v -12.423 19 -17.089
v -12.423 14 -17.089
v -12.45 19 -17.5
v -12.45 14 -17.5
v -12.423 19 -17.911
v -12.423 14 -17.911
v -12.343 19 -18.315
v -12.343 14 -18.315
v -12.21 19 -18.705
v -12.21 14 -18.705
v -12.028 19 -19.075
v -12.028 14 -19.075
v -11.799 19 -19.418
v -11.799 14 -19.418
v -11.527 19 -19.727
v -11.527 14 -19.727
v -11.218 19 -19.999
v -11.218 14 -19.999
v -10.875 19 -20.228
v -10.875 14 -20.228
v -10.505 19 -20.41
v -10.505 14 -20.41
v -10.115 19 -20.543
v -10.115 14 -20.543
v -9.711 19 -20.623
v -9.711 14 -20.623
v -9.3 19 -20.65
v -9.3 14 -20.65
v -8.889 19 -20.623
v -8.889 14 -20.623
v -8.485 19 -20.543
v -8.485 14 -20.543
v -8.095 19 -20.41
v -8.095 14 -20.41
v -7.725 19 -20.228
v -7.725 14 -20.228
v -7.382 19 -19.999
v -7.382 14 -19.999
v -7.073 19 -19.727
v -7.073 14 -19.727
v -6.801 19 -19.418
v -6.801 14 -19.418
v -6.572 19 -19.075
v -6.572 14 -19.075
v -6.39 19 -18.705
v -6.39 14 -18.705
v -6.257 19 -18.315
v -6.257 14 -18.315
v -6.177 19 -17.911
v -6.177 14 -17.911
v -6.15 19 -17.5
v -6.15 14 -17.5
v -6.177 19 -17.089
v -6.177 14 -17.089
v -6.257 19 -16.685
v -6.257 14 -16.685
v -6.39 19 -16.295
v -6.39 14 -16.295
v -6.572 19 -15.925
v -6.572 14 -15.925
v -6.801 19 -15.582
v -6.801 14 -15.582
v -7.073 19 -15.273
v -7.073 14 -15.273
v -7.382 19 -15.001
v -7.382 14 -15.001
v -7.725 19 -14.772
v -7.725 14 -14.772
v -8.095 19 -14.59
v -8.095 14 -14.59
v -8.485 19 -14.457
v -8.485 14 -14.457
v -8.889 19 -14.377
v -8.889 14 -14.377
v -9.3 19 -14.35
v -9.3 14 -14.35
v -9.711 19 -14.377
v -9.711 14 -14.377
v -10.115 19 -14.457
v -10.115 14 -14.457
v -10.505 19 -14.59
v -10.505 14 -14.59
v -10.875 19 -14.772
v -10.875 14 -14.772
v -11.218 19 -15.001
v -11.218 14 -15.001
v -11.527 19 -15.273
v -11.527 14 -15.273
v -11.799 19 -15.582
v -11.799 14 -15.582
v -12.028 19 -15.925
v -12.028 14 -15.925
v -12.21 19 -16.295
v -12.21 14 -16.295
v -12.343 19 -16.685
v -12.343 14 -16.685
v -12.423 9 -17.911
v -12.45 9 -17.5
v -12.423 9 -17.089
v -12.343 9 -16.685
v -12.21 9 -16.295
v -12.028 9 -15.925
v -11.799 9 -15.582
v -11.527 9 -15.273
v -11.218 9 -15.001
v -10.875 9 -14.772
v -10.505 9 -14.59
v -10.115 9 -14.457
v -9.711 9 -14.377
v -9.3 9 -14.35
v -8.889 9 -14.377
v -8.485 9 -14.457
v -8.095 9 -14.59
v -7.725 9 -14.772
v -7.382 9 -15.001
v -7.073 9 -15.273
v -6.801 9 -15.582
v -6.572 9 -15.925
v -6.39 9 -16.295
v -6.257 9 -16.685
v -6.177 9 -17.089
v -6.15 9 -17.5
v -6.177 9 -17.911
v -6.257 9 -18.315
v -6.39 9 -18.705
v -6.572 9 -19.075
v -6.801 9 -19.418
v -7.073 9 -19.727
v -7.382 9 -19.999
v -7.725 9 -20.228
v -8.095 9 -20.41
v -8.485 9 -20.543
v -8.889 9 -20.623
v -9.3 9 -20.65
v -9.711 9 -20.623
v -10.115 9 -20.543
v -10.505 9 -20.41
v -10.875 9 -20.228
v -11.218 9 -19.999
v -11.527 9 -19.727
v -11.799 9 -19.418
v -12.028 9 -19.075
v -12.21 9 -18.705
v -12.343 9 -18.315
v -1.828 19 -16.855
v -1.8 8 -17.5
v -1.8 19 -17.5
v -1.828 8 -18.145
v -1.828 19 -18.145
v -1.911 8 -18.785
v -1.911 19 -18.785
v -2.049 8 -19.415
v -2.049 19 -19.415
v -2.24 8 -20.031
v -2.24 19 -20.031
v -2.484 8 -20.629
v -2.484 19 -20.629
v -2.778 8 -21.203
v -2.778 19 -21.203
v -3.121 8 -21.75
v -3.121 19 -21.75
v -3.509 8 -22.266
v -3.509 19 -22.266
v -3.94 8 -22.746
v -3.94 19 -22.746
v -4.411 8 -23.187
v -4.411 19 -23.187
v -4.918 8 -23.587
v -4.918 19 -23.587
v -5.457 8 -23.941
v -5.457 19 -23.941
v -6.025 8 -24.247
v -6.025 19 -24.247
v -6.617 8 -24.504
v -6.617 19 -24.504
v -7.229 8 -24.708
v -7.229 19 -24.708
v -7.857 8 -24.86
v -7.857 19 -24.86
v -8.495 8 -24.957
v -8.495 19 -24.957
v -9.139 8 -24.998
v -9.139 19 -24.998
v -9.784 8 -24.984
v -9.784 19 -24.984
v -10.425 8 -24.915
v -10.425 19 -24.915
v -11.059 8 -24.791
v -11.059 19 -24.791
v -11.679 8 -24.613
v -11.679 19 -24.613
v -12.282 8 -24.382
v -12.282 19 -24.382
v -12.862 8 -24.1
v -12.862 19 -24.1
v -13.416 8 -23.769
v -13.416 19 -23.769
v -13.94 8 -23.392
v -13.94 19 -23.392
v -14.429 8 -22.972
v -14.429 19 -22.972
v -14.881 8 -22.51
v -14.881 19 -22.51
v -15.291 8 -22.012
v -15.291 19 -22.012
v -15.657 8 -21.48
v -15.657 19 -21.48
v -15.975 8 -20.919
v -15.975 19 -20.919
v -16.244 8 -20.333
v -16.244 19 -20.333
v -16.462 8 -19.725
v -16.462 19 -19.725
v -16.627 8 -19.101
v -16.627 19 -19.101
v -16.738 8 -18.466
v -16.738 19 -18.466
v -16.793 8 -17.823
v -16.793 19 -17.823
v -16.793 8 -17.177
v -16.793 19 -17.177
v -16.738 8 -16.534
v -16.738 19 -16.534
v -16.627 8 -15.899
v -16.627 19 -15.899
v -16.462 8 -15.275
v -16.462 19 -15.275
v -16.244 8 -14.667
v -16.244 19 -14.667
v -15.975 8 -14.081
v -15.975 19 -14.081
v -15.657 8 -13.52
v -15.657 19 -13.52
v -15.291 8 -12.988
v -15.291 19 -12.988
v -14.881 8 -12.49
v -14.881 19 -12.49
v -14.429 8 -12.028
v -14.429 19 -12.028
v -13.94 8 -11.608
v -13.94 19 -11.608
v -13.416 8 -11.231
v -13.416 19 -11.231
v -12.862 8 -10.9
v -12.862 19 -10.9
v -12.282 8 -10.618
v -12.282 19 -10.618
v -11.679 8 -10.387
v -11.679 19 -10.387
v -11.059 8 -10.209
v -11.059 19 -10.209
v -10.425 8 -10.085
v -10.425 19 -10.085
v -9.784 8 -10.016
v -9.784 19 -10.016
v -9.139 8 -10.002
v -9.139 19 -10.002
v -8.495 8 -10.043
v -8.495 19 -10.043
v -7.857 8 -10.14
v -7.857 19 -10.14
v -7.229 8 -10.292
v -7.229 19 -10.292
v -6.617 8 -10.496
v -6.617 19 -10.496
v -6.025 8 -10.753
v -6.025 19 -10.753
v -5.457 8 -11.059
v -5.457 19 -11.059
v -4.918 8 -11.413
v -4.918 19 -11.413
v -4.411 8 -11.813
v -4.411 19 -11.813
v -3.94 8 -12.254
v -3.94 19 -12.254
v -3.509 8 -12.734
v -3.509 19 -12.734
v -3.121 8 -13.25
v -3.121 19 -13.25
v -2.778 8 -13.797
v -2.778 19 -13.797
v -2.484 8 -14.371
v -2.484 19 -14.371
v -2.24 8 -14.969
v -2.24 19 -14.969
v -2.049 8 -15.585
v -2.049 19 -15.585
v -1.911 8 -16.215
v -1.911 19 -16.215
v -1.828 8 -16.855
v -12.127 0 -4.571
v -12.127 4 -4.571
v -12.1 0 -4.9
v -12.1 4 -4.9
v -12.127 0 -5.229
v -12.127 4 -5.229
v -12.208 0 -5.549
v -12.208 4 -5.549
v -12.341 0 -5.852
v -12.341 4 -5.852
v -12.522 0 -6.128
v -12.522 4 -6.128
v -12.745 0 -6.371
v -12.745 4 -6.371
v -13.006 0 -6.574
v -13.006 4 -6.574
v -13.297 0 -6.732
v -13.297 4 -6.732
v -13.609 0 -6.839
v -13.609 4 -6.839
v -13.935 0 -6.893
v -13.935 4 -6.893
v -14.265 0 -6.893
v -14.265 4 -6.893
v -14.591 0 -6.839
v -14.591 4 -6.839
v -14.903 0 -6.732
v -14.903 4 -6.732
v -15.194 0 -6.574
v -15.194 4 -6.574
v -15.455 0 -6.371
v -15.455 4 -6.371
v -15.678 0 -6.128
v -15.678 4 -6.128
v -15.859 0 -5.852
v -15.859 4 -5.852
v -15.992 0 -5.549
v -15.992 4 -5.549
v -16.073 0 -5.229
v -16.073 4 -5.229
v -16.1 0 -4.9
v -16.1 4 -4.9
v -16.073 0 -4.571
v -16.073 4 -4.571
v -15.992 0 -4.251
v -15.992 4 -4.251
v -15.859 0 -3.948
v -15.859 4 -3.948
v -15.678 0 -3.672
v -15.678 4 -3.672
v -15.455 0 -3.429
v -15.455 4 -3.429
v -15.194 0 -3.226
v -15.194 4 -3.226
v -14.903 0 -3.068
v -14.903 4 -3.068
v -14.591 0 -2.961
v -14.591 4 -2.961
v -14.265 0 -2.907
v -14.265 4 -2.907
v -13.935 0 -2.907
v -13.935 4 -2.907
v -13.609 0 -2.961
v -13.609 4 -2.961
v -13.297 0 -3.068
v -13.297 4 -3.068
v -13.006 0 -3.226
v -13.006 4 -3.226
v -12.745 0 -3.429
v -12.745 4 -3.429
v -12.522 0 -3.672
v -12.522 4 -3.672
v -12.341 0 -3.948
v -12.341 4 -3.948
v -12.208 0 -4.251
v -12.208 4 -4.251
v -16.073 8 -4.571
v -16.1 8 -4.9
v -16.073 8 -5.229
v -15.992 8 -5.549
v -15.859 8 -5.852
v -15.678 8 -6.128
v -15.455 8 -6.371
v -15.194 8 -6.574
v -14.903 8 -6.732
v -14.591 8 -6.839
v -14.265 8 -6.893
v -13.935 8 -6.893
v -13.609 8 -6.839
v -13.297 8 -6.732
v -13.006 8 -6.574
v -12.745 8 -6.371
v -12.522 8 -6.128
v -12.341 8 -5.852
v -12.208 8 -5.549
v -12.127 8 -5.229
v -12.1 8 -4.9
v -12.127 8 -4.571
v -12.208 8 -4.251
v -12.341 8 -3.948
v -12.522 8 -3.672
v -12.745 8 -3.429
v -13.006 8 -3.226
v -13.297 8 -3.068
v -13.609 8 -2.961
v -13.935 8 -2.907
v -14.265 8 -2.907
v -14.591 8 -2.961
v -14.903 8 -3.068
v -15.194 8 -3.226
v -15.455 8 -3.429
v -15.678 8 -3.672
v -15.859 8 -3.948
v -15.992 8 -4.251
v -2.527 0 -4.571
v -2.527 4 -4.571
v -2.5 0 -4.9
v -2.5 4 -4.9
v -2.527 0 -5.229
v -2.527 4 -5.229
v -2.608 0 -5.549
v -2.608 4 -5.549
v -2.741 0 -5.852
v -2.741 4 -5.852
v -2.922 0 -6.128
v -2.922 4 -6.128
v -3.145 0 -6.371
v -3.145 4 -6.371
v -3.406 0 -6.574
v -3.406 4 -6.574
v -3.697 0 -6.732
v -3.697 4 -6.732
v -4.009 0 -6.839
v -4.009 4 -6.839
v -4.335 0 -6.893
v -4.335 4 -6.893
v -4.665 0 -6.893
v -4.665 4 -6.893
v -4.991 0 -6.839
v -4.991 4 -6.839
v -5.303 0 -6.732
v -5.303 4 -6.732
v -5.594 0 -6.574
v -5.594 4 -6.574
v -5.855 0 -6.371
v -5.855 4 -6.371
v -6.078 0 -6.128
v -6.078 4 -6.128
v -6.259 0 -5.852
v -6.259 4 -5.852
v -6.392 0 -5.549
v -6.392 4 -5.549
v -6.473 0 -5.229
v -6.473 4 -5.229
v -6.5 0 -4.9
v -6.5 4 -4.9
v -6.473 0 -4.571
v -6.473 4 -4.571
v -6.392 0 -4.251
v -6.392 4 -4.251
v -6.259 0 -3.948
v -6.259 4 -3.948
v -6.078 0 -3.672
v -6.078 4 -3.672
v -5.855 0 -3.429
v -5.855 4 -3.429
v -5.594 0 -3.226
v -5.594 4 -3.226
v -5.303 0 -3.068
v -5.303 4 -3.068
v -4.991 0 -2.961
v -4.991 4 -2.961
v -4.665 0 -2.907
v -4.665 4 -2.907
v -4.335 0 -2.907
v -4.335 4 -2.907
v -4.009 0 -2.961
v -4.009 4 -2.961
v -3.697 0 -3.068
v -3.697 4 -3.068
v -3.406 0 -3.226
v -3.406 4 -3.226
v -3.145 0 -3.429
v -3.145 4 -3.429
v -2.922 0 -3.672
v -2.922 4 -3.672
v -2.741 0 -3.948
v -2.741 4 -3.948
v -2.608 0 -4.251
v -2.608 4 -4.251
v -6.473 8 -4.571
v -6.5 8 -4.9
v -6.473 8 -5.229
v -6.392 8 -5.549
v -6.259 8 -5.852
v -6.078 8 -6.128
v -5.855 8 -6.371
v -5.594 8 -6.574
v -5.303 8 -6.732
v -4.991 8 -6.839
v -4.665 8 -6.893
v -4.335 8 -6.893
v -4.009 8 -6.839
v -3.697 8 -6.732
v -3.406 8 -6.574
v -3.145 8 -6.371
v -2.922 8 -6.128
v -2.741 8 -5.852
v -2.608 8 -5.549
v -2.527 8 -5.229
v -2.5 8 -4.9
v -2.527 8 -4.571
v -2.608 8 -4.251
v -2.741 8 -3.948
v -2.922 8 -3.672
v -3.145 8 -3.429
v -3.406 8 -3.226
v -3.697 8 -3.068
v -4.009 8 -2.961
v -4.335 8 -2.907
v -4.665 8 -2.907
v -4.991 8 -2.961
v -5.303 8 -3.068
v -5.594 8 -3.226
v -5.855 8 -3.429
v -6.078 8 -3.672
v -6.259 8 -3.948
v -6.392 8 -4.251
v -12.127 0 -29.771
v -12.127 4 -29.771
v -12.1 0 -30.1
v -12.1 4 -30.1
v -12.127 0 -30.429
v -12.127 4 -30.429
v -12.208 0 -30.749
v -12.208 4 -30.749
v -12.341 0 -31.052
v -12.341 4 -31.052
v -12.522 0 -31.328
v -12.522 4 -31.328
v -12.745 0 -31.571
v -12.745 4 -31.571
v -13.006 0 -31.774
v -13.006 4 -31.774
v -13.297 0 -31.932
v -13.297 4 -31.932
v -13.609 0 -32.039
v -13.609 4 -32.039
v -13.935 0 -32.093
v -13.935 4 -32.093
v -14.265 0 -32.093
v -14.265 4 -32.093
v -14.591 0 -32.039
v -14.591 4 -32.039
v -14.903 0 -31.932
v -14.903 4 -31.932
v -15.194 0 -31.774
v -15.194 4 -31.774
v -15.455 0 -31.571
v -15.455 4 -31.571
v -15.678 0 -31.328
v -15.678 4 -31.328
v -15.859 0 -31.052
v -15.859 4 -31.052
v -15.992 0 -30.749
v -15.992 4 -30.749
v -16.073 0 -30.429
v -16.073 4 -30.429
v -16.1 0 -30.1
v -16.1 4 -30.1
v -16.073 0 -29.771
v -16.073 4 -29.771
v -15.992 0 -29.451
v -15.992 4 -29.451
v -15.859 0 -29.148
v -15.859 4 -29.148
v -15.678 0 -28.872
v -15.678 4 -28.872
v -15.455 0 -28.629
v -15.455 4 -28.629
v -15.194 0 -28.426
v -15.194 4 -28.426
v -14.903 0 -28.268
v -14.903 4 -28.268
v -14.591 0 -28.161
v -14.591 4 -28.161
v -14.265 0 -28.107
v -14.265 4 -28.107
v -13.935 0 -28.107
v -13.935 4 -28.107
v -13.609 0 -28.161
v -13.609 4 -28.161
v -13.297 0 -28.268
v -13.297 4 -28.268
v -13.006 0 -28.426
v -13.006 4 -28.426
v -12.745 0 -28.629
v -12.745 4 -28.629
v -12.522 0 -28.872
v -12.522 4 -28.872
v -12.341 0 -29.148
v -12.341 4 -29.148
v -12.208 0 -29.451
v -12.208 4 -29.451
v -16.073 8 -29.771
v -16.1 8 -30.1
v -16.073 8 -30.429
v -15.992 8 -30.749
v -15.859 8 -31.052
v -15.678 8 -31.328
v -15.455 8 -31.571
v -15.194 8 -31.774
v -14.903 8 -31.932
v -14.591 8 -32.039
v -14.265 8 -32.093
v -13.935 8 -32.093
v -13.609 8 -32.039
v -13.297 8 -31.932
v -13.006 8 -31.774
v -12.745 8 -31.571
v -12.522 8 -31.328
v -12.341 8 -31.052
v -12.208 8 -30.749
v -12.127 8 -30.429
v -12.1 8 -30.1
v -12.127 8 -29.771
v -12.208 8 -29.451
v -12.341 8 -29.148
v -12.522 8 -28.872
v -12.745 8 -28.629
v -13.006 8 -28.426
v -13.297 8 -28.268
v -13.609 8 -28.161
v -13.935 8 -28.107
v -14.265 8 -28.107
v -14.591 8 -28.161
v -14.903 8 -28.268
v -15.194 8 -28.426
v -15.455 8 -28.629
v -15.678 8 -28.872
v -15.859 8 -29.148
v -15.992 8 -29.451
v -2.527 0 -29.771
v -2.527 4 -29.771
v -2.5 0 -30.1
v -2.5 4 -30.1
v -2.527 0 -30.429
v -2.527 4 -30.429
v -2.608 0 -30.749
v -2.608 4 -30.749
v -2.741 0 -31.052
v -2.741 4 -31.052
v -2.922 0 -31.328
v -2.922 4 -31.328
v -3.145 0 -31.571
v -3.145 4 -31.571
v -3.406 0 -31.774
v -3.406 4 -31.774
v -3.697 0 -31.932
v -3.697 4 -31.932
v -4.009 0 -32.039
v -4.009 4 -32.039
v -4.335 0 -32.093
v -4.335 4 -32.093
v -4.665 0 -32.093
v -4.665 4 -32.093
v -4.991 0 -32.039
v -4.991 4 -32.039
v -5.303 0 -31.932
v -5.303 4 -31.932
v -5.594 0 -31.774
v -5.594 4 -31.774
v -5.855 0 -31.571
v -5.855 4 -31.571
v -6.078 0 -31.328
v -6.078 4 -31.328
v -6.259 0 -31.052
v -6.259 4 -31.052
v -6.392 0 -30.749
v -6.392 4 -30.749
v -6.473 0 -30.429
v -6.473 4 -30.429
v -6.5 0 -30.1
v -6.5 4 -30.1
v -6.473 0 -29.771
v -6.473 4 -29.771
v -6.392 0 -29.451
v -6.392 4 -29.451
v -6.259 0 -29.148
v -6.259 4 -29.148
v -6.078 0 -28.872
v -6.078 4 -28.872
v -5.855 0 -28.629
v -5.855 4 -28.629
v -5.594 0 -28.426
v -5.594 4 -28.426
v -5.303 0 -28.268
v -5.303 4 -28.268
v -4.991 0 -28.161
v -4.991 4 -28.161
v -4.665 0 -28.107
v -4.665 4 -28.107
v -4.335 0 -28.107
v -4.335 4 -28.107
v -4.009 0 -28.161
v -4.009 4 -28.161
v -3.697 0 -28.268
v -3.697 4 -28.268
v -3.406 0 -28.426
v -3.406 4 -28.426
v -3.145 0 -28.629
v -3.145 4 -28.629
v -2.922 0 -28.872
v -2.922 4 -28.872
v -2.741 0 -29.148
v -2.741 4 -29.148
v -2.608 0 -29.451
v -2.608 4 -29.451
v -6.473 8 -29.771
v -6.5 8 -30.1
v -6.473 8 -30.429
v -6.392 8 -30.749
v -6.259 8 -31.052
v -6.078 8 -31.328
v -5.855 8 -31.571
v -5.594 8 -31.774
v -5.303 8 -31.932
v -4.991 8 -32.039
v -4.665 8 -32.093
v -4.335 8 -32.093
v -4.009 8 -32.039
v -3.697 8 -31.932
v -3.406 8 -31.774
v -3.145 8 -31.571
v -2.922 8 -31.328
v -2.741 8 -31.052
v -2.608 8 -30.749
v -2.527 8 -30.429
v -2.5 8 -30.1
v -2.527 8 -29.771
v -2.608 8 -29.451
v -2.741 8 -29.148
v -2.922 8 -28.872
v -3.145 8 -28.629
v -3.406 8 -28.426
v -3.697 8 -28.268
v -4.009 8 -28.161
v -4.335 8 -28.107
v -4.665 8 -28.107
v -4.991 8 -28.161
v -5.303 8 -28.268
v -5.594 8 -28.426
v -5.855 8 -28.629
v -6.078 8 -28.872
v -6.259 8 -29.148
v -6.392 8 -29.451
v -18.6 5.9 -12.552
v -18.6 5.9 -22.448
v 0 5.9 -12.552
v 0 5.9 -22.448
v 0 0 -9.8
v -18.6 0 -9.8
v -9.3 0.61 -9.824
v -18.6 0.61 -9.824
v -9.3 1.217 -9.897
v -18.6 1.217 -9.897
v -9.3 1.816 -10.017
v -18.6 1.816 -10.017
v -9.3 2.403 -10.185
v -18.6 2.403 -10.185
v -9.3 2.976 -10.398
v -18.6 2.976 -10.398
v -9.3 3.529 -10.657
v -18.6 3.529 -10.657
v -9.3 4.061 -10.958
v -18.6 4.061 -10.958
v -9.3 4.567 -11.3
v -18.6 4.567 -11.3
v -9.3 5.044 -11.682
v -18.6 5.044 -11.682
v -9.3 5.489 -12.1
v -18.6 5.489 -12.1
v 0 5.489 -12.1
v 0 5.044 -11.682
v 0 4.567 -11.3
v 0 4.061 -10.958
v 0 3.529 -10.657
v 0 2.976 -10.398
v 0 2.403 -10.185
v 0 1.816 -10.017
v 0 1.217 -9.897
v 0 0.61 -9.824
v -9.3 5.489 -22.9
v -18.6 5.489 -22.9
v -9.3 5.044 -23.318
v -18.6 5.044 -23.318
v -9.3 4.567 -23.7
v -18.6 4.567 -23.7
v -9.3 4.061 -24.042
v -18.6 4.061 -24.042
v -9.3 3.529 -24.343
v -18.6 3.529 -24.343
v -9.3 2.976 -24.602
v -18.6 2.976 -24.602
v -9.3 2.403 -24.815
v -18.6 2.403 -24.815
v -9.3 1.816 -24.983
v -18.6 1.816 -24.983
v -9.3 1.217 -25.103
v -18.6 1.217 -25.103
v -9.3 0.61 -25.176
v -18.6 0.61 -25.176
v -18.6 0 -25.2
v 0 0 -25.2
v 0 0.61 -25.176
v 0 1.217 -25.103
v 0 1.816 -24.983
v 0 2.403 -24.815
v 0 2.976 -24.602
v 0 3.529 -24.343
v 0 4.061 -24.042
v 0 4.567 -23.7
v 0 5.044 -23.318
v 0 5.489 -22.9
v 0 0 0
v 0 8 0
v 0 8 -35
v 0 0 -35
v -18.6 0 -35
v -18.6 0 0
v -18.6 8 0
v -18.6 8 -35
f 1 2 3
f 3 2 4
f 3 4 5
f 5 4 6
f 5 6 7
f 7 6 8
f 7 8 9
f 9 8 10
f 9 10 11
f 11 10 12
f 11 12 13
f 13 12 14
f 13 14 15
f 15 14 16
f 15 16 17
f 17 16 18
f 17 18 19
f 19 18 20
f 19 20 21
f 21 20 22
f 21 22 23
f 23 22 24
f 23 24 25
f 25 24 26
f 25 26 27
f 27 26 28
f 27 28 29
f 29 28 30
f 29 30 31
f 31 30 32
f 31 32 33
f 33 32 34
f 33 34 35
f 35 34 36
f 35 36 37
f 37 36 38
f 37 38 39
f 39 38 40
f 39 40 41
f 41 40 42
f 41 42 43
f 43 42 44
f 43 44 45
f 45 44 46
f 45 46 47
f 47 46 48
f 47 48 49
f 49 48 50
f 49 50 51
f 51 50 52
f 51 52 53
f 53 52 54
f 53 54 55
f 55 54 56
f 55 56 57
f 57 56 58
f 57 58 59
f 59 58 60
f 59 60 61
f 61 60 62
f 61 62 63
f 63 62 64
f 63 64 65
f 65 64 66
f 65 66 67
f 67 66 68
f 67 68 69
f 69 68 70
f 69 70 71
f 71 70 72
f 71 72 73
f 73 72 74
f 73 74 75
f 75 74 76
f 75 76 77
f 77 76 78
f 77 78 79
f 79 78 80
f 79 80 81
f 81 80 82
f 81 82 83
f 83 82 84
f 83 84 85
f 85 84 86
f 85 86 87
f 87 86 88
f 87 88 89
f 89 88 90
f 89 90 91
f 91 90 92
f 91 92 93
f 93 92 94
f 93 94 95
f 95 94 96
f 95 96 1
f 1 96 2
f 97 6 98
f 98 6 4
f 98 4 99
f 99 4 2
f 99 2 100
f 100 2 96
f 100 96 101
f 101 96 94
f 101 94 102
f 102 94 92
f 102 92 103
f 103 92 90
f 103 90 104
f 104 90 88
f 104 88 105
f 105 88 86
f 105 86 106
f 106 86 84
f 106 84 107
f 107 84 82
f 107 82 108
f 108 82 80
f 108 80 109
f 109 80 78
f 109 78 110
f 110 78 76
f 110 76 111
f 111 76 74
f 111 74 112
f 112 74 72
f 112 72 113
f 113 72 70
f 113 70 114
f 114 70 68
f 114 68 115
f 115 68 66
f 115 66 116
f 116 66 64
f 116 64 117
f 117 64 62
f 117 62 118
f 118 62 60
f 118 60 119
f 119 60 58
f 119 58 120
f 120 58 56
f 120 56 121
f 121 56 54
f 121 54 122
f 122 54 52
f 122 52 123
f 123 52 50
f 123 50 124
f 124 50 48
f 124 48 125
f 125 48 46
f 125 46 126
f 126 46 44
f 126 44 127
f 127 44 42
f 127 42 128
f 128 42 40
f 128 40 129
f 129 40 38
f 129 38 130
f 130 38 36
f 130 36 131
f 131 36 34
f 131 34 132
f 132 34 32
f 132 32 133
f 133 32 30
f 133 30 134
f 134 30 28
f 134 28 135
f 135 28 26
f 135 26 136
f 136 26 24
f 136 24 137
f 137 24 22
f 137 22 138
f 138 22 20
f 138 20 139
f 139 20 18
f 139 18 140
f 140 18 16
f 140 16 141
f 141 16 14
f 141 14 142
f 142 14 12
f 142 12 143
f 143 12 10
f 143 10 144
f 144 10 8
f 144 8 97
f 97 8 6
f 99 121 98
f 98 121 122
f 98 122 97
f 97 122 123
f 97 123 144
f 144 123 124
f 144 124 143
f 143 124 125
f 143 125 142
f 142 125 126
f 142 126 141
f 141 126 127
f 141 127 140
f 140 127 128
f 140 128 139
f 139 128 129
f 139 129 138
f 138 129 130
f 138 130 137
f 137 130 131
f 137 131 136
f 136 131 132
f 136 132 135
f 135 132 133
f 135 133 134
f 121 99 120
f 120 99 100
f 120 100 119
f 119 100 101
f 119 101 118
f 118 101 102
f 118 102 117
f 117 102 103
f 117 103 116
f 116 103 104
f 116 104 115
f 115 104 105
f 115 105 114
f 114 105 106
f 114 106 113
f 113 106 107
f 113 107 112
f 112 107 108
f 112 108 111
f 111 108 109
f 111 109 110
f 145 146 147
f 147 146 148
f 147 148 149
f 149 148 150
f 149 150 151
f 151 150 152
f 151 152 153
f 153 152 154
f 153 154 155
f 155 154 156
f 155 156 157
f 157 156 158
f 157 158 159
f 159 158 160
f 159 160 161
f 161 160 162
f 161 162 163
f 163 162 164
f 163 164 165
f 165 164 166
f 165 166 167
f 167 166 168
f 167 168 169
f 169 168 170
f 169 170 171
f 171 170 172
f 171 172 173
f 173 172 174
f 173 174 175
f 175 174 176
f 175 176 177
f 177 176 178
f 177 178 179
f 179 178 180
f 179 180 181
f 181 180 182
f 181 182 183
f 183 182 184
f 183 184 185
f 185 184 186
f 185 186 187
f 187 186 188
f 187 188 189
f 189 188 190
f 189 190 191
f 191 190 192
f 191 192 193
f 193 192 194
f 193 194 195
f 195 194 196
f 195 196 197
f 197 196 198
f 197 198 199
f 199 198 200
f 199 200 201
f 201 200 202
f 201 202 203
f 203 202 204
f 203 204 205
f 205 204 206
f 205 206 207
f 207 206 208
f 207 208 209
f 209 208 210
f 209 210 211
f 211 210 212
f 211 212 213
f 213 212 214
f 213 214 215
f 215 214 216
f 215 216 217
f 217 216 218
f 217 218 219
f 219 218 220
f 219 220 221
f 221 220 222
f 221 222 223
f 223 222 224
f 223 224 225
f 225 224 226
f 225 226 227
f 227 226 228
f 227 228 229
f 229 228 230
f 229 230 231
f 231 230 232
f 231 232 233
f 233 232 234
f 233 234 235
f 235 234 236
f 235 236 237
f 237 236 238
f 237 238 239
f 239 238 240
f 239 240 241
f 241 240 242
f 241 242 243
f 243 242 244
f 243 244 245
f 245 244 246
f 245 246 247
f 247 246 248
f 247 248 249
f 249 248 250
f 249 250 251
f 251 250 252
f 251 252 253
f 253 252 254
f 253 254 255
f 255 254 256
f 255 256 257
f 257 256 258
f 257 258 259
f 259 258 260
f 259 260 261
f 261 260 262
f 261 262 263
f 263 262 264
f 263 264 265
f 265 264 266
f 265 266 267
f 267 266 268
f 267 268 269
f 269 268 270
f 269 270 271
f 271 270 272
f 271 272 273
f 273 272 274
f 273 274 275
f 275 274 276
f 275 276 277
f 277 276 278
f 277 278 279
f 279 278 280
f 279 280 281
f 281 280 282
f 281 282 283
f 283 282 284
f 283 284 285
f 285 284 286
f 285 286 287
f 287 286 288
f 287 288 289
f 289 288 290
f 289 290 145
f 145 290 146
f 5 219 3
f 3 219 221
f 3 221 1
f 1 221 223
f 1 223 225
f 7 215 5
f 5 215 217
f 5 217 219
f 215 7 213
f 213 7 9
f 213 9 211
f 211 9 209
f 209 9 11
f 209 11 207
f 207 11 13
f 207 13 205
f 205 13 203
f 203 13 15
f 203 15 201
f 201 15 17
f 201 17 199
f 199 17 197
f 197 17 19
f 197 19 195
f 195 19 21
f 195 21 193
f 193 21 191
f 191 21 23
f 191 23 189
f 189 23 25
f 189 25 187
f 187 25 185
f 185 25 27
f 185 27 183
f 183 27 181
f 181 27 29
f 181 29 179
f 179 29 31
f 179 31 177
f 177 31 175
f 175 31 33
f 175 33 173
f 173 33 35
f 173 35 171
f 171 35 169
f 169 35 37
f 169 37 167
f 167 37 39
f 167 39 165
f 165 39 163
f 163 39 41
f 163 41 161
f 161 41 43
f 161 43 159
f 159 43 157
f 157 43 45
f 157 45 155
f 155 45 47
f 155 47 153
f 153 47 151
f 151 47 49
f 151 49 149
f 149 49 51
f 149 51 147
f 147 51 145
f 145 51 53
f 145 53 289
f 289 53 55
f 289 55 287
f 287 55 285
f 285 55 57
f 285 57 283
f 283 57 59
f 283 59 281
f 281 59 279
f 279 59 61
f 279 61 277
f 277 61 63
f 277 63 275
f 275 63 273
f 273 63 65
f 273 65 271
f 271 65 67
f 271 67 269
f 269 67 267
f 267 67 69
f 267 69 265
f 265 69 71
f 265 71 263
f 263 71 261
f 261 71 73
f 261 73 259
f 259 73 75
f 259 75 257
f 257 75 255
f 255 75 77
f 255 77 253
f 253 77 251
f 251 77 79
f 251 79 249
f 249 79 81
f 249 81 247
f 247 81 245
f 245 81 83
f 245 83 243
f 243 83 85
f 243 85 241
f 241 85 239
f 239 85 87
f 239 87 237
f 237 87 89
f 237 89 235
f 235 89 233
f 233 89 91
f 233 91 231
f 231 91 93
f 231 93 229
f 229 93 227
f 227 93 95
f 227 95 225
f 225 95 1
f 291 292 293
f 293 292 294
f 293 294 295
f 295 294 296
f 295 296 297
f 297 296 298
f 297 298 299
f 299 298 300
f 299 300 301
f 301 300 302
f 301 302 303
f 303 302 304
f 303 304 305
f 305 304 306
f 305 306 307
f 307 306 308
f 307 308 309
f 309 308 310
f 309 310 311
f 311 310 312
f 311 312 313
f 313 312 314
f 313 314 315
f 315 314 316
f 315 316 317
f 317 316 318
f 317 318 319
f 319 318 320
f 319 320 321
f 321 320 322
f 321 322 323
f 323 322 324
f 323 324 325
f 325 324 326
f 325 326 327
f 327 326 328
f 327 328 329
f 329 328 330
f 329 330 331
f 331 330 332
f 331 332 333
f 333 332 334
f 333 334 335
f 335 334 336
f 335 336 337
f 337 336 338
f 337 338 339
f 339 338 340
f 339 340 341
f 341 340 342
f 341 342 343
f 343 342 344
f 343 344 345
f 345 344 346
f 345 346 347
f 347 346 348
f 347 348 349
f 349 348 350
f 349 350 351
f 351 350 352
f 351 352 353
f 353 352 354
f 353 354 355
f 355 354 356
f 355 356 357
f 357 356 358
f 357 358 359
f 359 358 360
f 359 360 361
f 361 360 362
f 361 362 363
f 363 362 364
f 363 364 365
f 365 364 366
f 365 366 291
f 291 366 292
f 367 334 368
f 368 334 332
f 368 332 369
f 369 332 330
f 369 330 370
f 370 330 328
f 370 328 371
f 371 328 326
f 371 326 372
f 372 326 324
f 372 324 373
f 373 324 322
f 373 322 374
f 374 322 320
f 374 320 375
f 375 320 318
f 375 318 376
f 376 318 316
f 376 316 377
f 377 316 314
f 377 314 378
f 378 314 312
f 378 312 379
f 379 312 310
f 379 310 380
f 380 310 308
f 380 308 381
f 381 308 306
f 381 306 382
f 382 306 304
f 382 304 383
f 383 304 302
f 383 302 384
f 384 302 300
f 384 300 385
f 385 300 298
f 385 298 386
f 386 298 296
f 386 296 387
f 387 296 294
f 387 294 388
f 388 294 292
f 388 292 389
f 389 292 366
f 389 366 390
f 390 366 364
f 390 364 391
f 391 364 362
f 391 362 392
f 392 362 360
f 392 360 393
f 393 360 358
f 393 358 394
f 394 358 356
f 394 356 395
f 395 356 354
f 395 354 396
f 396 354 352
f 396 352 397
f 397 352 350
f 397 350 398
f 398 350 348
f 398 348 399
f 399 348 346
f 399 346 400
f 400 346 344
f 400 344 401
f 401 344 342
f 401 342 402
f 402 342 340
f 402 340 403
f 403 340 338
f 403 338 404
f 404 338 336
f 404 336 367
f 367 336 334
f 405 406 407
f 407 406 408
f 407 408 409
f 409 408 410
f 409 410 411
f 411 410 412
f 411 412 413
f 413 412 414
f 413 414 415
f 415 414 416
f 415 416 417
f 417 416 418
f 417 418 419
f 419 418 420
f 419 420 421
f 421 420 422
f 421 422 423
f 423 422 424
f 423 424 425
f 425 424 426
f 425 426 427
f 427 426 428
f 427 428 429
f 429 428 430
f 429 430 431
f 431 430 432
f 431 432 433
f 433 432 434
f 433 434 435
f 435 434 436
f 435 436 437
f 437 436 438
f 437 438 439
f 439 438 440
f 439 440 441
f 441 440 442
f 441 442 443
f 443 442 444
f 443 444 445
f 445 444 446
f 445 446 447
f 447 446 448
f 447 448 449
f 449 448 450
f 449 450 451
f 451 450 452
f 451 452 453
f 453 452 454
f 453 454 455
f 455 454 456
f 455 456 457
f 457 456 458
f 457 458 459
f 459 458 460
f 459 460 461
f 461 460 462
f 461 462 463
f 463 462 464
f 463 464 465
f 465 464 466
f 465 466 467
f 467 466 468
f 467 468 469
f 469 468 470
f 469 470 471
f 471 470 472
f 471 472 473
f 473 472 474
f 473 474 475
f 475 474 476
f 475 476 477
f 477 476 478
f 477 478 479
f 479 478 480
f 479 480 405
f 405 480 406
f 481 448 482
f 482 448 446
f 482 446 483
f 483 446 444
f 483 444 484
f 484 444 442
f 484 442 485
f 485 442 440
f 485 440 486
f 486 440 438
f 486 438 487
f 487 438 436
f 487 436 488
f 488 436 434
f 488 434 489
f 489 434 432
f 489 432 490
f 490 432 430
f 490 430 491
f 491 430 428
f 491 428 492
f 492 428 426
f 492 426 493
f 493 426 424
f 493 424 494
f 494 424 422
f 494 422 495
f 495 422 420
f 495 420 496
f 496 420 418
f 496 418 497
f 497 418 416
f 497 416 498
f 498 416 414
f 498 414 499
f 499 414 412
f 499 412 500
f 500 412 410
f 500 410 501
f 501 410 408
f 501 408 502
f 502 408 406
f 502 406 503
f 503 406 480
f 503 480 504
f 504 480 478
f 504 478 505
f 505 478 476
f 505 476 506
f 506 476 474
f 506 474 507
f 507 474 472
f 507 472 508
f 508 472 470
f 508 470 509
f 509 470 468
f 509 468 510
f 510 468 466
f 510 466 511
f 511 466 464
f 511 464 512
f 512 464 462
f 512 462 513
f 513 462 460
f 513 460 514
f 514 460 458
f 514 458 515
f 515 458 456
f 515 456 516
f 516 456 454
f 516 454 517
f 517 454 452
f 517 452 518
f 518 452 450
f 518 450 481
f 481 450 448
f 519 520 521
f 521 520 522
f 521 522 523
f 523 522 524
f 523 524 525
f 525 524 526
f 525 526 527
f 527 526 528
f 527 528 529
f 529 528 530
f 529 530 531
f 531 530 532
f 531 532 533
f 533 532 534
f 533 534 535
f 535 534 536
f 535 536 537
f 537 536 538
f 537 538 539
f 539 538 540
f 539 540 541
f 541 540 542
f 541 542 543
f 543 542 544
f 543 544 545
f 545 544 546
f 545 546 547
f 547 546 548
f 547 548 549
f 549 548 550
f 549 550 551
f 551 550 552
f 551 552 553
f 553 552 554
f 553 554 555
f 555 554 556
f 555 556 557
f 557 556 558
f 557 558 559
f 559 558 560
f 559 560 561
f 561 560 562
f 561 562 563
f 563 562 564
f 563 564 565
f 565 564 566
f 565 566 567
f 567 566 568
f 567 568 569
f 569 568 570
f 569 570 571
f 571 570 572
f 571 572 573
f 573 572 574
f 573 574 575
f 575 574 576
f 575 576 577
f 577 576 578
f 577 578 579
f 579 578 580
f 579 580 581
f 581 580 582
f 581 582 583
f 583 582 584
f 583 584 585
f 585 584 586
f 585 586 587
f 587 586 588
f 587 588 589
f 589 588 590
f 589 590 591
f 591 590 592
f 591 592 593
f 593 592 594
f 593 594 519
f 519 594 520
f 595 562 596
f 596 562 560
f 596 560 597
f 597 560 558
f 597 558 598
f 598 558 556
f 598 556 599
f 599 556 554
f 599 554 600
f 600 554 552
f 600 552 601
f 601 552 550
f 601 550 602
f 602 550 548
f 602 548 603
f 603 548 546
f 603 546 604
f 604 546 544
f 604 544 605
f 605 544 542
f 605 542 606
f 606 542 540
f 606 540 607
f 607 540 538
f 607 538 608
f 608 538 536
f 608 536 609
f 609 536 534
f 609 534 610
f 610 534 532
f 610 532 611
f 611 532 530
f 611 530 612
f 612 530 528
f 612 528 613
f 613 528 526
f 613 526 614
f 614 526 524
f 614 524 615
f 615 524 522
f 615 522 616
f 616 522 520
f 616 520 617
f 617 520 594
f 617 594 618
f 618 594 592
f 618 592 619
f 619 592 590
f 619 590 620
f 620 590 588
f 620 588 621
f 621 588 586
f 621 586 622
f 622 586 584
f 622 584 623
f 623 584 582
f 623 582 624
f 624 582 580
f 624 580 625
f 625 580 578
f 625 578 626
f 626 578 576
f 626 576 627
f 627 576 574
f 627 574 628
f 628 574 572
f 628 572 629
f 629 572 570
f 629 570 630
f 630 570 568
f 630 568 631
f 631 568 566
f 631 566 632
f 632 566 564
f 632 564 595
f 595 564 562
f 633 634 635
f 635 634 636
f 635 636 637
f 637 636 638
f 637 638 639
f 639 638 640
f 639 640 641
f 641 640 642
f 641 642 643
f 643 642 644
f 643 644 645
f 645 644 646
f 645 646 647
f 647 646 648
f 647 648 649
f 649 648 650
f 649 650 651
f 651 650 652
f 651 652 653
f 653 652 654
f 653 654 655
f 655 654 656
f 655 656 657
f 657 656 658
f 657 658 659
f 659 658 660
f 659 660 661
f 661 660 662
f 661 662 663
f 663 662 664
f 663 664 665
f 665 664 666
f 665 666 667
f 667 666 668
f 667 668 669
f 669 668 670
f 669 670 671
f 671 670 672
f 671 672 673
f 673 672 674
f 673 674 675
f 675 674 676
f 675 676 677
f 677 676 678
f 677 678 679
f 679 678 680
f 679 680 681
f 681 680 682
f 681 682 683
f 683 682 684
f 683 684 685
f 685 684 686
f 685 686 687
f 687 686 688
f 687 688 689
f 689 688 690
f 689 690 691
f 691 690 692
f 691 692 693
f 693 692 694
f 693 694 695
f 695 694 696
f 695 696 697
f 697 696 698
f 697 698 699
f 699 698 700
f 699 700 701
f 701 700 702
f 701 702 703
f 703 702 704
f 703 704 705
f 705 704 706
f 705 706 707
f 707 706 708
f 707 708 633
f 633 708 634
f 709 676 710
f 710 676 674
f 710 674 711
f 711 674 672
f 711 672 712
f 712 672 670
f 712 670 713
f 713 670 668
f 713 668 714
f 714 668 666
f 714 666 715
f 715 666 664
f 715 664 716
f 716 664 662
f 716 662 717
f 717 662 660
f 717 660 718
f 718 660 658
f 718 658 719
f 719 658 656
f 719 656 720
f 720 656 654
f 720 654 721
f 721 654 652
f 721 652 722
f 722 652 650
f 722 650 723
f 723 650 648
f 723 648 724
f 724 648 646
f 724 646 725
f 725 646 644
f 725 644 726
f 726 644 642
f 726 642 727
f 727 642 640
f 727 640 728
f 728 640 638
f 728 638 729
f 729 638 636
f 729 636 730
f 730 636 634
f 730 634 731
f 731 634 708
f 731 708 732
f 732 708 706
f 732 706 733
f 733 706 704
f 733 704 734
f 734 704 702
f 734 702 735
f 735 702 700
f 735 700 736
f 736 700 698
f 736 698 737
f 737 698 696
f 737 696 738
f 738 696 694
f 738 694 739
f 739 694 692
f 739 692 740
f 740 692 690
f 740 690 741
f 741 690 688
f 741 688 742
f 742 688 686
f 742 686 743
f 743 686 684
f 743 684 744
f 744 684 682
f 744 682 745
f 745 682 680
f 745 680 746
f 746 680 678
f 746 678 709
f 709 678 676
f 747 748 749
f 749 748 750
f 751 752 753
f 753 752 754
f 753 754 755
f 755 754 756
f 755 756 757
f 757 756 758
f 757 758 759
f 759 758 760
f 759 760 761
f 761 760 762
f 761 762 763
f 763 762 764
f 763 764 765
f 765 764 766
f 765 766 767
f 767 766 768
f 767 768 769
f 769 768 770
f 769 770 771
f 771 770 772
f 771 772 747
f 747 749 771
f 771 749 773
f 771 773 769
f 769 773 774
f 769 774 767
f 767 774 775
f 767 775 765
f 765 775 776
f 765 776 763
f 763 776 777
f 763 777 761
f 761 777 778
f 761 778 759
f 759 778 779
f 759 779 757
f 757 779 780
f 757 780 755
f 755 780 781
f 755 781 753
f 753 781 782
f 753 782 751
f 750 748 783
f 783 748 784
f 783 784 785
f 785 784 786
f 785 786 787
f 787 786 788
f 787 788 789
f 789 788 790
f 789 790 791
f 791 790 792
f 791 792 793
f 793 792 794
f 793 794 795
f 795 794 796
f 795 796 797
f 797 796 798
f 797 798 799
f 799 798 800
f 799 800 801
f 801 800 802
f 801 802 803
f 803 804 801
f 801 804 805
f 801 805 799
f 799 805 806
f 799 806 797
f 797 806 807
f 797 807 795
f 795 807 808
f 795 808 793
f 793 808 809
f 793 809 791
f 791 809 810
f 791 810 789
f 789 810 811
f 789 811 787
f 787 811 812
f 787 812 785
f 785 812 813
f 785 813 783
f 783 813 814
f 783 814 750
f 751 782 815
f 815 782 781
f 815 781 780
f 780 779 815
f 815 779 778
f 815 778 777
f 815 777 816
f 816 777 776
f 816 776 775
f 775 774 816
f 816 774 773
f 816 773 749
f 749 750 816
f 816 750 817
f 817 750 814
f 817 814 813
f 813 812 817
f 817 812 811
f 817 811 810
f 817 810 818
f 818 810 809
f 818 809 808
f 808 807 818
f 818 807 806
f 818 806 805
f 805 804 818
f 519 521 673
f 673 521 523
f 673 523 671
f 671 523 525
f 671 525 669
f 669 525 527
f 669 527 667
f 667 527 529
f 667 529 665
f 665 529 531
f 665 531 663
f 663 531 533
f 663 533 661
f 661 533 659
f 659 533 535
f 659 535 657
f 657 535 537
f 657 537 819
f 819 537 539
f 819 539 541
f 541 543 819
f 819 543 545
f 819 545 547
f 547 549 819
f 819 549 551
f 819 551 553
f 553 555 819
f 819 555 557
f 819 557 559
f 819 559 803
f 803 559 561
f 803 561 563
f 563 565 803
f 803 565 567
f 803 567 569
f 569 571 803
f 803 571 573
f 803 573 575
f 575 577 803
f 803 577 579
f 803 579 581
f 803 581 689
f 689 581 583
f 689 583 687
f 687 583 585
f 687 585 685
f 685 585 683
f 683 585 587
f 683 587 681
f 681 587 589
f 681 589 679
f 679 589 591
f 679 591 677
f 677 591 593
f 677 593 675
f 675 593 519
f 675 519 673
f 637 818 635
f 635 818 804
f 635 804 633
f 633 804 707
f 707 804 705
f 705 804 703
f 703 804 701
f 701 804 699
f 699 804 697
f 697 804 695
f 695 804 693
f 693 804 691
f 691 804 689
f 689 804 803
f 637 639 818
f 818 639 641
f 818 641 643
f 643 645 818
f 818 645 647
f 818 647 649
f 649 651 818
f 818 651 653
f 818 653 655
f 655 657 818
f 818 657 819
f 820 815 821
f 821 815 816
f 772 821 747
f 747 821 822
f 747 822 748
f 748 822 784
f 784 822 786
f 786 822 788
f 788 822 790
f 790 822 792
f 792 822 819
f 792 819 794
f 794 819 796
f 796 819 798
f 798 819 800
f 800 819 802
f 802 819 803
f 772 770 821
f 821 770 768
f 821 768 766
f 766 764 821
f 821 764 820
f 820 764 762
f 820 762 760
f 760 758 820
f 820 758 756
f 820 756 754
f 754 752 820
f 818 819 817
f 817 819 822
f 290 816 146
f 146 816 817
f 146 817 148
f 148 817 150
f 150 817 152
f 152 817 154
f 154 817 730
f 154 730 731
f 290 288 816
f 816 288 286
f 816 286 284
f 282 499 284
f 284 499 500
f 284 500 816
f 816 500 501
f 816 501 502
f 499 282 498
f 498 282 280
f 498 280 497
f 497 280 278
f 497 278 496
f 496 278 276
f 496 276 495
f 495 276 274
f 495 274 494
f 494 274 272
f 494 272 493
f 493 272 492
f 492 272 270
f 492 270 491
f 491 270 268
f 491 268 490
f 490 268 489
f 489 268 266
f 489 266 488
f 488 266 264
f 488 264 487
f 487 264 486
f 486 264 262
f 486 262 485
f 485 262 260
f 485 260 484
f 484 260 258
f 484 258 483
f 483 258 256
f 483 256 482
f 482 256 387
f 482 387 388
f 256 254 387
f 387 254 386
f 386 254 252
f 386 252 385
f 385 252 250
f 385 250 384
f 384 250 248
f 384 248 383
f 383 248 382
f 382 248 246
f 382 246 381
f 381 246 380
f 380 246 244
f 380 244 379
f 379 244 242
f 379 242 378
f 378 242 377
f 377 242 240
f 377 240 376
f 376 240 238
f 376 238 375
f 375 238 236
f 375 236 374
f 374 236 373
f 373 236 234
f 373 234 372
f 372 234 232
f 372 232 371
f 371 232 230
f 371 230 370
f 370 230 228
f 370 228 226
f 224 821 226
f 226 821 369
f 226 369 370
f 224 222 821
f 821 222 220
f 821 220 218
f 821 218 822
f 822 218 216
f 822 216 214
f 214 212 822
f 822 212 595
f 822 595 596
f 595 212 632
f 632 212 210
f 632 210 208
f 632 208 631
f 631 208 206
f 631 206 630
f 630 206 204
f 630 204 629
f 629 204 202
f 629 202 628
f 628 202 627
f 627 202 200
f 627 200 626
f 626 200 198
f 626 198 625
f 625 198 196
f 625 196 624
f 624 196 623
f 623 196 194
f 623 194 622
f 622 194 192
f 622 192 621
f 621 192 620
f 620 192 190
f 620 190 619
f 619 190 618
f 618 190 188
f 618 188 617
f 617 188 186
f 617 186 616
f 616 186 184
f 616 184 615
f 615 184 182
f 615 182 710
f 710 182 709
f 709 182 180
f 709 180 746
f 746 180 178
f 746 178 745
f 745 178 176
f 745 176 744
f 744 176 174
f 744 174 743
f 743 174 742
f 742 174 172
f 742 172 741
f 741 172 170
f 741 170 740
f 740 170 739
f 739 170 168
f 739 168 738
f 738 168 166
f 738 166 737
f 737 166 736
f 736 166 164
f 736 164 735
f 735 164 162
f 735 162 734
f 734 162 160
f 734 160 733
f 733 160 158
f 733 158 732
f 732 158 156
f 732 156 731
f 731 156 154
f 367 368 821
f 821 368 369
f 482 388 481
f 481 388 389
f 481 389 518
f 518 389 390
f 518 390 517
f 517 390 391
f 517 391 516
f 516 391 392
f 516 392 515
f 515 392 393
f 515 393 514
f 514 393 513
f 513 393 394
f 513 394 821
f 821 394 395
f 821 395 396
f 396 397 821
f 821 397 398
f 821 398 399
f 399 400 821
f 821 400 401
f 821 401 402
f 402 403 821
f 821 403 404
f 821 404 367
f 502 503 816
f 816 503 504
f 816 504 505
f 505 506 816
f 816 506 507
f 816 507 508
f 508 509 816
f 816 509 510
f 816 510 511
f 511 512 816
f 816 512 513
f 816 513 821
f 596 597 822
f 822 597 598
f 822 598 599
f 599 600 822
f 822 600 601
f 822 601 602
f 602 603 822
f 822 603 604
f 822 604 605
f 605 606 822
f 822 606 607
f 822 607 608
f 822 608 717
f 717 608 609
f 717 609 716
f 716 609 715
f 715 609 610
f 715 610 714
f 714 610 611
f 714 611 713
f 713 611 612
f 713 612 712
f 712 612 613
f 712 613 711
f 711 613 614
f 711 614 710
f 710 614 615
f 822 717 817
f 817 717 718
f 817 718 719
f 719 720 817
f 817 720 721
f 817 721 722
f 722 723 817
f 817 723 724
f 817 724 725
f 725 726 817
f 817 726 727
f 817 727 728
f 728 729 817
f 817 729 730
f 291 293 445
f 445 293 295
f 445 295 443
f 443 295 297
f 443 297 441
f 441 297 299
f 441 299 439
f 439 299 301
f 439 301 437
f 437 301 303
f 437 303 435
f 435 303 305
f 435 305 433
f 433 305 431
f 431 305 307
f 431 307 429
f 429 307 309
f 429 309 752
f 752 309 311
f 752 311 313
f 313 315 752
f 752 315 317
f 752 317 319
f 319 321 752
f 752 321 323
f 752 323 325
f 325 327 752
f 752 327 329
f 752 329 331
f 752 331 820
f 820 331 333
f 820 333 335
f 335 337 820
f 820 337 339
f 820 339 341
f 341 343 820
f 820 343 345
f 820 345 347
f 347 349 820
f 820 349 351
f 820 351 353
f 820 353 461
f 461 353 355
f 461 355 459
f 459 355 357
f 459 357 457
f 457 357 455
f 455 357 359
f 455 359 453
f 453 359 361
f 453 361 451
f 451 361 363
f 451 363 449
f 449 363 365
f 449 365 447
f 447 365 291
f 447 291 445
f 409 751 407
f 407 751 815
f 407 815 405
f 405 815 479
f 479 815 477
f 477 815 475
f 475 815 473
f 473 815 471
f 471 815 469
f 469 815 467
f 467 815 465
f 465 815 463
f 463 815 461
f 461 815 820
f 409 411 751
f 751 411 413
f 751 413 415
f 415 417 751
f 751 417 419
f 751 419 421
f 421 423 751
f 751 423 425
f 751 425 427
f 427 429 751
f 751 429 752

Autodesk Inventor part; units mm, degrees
ref_plane "YZ Plane" through (0, 0, 0) normal (1, 0, 0) x (0, 1, 0)
ref_plane "XZ Plane" through (0, 0, 0) normal (0, 1, 0) x (-1, 0, 0)
ref_plane "XY Plane" through (0, 0, 0) normal (0, 0, 1) x (1, 0, 0)
sketch "Esquisse1" plane through (0, 0, 0) normal (0, 1, 0) x (-1, 0, 0)
  line L0 (0, 0) -> (18.6, 0)
  line L1 (18.6, 0) -> (18.6, -35)
  line L2 (18.6, -35) -> (0, -35)
  line L3 (0, -35) -> (0, 0)
  dimension "d0" = 18.6
  dimension "d1" = 35
extrude "Extrusion1" add sketch "Esquisse1" along normal blind 8
sketch "Esquisse2" plane through (0, 0, 0) normal (1, 0, 0) x (0, 0, -1)
  line L0 (35, 0) -> (0, 0) projected
  line L1 (25.2, 0) -> (9.8, 0)
  line L2 (22.4477, 5.9) -> (12.5523, 5.9)
  arc A0 (25.2, 0) -> (22.4477, 5.9) centre (17.5, 0) ccw
  arc A1 (12.5523, 5.9) -> (9.8, 0) centre (17.5, 0) ccw
  dimension "d5" = 5.9
extrude "Extrusion2" cut sketch "Esquisse2" against normal up to surface (18.6 mm away)
ref_plane "Plan de construction1" through (-18.6, 0, -4.9) normal (0, 0, 1) x (1, 0, 0)
ref_plane "Plan de construction2" through (0, 0, -30.1) normal (0, 0, -1) x (-1, 0, 0)
ref_plane "Plan de construction3" through (-14.1, 0, 0) normal (-1, 0, 0) x (0, 0, 1)
ref_plane "Plan de construction4" through (-4.5, 0, -35) normal (1, 0, 0) x (0, 0, -1)
hole "Perçage1" at (-4.5, 8, -30.1) direction (0, -1, 0) diameter 4 depth 8
hole "Perçage2" at (-14.1, 8, -30.1) direction (0, -1, 0) diameter 4 depth 8
hole "Perçage3" at (-4.5, 8, -4.9) direction (0, -1, 0) diameter 4 depth 8
hole "Perçage4" at (-14.1, 8, -4.9) direction (0, -1, 0) diameter 4 depth 8
sketch "Esquisse3" plane through (0, 8, 0) normal (0, 1, 0) x (1, 0, 0)
  circle A0 centre (-9.3, 17.5) radius 7.5
  point P0 (0, 0)
  dimension "d48" = 15
extrude "Extrusion3" add sketch "Esquisse3" along normal blind 11
hole "Perçage5" at (-9.3, 19, -17.5) direction (0, -1, 0) diameter 6.3 depth 10
properties part number "bagueSilentbloc"
